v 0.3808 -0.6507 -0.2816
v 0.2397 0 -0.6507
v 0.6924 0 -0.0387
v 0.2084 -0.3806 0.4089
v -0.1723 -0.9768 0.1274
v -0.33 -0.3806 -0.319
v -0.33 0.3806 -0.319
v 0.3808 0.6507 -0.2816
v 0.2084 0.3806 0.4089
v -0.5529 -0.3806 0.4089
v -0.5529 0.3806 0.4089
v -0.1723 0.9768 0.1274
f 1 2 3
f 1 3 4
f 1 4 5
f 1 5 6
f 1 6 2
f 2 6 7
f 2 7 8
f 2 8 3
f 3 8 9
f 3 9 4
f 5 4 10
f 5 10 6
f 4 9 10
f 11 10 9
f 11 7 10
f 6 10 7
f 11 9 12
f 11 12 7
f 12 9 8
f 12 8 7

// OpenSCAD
polyhedron( points = [[0.380774890341443, -0.650680350556464, -0.281619770892837], [0.239719534495132, -6.61660648510888e-08, -0.650717870009832], [0.692389018411712, 7.28238847540042e-07, -0.0386678794094906], [-0.172278266073653, -0.976772857043845, 0.127416579694561], [-0.552907630669537, -0.380629430828897, 0.408928843928615], [-0.552907630635359, 0.38062929839176, 0.408928843928615], [-0.172278265985945, 0.976772724625403, 0.127416579806528], [0.380774890399869, 0.65068021816519, -0.281619770842116], [-0.329994368658777, -0.380629430736371, -0.318961622030636], [-0.329994368624599, 0.38062929841593, -0.318961622030636], [0.208351098482767, -0.380629430828897, 0.408928843928615], [0.208351098516947, 0.380629298323407, 0.408928843928615]], faces = [[0, 1, 2], [0, 2, 10], [0, 10, 3], [0, 3, 8], [0, 8, 1], [1, 8, 9], [1, 9, 7], [1, 7, 2], [2, 7, 11], [2, 11, 10], [3, 10, 4], [3, 4, 8], [4, 10, 11, 5], [4, 5, 9, 8], [5, 11, 6], [5, 6, 9], [6, 11, 7], [6, 7, 9]]);
